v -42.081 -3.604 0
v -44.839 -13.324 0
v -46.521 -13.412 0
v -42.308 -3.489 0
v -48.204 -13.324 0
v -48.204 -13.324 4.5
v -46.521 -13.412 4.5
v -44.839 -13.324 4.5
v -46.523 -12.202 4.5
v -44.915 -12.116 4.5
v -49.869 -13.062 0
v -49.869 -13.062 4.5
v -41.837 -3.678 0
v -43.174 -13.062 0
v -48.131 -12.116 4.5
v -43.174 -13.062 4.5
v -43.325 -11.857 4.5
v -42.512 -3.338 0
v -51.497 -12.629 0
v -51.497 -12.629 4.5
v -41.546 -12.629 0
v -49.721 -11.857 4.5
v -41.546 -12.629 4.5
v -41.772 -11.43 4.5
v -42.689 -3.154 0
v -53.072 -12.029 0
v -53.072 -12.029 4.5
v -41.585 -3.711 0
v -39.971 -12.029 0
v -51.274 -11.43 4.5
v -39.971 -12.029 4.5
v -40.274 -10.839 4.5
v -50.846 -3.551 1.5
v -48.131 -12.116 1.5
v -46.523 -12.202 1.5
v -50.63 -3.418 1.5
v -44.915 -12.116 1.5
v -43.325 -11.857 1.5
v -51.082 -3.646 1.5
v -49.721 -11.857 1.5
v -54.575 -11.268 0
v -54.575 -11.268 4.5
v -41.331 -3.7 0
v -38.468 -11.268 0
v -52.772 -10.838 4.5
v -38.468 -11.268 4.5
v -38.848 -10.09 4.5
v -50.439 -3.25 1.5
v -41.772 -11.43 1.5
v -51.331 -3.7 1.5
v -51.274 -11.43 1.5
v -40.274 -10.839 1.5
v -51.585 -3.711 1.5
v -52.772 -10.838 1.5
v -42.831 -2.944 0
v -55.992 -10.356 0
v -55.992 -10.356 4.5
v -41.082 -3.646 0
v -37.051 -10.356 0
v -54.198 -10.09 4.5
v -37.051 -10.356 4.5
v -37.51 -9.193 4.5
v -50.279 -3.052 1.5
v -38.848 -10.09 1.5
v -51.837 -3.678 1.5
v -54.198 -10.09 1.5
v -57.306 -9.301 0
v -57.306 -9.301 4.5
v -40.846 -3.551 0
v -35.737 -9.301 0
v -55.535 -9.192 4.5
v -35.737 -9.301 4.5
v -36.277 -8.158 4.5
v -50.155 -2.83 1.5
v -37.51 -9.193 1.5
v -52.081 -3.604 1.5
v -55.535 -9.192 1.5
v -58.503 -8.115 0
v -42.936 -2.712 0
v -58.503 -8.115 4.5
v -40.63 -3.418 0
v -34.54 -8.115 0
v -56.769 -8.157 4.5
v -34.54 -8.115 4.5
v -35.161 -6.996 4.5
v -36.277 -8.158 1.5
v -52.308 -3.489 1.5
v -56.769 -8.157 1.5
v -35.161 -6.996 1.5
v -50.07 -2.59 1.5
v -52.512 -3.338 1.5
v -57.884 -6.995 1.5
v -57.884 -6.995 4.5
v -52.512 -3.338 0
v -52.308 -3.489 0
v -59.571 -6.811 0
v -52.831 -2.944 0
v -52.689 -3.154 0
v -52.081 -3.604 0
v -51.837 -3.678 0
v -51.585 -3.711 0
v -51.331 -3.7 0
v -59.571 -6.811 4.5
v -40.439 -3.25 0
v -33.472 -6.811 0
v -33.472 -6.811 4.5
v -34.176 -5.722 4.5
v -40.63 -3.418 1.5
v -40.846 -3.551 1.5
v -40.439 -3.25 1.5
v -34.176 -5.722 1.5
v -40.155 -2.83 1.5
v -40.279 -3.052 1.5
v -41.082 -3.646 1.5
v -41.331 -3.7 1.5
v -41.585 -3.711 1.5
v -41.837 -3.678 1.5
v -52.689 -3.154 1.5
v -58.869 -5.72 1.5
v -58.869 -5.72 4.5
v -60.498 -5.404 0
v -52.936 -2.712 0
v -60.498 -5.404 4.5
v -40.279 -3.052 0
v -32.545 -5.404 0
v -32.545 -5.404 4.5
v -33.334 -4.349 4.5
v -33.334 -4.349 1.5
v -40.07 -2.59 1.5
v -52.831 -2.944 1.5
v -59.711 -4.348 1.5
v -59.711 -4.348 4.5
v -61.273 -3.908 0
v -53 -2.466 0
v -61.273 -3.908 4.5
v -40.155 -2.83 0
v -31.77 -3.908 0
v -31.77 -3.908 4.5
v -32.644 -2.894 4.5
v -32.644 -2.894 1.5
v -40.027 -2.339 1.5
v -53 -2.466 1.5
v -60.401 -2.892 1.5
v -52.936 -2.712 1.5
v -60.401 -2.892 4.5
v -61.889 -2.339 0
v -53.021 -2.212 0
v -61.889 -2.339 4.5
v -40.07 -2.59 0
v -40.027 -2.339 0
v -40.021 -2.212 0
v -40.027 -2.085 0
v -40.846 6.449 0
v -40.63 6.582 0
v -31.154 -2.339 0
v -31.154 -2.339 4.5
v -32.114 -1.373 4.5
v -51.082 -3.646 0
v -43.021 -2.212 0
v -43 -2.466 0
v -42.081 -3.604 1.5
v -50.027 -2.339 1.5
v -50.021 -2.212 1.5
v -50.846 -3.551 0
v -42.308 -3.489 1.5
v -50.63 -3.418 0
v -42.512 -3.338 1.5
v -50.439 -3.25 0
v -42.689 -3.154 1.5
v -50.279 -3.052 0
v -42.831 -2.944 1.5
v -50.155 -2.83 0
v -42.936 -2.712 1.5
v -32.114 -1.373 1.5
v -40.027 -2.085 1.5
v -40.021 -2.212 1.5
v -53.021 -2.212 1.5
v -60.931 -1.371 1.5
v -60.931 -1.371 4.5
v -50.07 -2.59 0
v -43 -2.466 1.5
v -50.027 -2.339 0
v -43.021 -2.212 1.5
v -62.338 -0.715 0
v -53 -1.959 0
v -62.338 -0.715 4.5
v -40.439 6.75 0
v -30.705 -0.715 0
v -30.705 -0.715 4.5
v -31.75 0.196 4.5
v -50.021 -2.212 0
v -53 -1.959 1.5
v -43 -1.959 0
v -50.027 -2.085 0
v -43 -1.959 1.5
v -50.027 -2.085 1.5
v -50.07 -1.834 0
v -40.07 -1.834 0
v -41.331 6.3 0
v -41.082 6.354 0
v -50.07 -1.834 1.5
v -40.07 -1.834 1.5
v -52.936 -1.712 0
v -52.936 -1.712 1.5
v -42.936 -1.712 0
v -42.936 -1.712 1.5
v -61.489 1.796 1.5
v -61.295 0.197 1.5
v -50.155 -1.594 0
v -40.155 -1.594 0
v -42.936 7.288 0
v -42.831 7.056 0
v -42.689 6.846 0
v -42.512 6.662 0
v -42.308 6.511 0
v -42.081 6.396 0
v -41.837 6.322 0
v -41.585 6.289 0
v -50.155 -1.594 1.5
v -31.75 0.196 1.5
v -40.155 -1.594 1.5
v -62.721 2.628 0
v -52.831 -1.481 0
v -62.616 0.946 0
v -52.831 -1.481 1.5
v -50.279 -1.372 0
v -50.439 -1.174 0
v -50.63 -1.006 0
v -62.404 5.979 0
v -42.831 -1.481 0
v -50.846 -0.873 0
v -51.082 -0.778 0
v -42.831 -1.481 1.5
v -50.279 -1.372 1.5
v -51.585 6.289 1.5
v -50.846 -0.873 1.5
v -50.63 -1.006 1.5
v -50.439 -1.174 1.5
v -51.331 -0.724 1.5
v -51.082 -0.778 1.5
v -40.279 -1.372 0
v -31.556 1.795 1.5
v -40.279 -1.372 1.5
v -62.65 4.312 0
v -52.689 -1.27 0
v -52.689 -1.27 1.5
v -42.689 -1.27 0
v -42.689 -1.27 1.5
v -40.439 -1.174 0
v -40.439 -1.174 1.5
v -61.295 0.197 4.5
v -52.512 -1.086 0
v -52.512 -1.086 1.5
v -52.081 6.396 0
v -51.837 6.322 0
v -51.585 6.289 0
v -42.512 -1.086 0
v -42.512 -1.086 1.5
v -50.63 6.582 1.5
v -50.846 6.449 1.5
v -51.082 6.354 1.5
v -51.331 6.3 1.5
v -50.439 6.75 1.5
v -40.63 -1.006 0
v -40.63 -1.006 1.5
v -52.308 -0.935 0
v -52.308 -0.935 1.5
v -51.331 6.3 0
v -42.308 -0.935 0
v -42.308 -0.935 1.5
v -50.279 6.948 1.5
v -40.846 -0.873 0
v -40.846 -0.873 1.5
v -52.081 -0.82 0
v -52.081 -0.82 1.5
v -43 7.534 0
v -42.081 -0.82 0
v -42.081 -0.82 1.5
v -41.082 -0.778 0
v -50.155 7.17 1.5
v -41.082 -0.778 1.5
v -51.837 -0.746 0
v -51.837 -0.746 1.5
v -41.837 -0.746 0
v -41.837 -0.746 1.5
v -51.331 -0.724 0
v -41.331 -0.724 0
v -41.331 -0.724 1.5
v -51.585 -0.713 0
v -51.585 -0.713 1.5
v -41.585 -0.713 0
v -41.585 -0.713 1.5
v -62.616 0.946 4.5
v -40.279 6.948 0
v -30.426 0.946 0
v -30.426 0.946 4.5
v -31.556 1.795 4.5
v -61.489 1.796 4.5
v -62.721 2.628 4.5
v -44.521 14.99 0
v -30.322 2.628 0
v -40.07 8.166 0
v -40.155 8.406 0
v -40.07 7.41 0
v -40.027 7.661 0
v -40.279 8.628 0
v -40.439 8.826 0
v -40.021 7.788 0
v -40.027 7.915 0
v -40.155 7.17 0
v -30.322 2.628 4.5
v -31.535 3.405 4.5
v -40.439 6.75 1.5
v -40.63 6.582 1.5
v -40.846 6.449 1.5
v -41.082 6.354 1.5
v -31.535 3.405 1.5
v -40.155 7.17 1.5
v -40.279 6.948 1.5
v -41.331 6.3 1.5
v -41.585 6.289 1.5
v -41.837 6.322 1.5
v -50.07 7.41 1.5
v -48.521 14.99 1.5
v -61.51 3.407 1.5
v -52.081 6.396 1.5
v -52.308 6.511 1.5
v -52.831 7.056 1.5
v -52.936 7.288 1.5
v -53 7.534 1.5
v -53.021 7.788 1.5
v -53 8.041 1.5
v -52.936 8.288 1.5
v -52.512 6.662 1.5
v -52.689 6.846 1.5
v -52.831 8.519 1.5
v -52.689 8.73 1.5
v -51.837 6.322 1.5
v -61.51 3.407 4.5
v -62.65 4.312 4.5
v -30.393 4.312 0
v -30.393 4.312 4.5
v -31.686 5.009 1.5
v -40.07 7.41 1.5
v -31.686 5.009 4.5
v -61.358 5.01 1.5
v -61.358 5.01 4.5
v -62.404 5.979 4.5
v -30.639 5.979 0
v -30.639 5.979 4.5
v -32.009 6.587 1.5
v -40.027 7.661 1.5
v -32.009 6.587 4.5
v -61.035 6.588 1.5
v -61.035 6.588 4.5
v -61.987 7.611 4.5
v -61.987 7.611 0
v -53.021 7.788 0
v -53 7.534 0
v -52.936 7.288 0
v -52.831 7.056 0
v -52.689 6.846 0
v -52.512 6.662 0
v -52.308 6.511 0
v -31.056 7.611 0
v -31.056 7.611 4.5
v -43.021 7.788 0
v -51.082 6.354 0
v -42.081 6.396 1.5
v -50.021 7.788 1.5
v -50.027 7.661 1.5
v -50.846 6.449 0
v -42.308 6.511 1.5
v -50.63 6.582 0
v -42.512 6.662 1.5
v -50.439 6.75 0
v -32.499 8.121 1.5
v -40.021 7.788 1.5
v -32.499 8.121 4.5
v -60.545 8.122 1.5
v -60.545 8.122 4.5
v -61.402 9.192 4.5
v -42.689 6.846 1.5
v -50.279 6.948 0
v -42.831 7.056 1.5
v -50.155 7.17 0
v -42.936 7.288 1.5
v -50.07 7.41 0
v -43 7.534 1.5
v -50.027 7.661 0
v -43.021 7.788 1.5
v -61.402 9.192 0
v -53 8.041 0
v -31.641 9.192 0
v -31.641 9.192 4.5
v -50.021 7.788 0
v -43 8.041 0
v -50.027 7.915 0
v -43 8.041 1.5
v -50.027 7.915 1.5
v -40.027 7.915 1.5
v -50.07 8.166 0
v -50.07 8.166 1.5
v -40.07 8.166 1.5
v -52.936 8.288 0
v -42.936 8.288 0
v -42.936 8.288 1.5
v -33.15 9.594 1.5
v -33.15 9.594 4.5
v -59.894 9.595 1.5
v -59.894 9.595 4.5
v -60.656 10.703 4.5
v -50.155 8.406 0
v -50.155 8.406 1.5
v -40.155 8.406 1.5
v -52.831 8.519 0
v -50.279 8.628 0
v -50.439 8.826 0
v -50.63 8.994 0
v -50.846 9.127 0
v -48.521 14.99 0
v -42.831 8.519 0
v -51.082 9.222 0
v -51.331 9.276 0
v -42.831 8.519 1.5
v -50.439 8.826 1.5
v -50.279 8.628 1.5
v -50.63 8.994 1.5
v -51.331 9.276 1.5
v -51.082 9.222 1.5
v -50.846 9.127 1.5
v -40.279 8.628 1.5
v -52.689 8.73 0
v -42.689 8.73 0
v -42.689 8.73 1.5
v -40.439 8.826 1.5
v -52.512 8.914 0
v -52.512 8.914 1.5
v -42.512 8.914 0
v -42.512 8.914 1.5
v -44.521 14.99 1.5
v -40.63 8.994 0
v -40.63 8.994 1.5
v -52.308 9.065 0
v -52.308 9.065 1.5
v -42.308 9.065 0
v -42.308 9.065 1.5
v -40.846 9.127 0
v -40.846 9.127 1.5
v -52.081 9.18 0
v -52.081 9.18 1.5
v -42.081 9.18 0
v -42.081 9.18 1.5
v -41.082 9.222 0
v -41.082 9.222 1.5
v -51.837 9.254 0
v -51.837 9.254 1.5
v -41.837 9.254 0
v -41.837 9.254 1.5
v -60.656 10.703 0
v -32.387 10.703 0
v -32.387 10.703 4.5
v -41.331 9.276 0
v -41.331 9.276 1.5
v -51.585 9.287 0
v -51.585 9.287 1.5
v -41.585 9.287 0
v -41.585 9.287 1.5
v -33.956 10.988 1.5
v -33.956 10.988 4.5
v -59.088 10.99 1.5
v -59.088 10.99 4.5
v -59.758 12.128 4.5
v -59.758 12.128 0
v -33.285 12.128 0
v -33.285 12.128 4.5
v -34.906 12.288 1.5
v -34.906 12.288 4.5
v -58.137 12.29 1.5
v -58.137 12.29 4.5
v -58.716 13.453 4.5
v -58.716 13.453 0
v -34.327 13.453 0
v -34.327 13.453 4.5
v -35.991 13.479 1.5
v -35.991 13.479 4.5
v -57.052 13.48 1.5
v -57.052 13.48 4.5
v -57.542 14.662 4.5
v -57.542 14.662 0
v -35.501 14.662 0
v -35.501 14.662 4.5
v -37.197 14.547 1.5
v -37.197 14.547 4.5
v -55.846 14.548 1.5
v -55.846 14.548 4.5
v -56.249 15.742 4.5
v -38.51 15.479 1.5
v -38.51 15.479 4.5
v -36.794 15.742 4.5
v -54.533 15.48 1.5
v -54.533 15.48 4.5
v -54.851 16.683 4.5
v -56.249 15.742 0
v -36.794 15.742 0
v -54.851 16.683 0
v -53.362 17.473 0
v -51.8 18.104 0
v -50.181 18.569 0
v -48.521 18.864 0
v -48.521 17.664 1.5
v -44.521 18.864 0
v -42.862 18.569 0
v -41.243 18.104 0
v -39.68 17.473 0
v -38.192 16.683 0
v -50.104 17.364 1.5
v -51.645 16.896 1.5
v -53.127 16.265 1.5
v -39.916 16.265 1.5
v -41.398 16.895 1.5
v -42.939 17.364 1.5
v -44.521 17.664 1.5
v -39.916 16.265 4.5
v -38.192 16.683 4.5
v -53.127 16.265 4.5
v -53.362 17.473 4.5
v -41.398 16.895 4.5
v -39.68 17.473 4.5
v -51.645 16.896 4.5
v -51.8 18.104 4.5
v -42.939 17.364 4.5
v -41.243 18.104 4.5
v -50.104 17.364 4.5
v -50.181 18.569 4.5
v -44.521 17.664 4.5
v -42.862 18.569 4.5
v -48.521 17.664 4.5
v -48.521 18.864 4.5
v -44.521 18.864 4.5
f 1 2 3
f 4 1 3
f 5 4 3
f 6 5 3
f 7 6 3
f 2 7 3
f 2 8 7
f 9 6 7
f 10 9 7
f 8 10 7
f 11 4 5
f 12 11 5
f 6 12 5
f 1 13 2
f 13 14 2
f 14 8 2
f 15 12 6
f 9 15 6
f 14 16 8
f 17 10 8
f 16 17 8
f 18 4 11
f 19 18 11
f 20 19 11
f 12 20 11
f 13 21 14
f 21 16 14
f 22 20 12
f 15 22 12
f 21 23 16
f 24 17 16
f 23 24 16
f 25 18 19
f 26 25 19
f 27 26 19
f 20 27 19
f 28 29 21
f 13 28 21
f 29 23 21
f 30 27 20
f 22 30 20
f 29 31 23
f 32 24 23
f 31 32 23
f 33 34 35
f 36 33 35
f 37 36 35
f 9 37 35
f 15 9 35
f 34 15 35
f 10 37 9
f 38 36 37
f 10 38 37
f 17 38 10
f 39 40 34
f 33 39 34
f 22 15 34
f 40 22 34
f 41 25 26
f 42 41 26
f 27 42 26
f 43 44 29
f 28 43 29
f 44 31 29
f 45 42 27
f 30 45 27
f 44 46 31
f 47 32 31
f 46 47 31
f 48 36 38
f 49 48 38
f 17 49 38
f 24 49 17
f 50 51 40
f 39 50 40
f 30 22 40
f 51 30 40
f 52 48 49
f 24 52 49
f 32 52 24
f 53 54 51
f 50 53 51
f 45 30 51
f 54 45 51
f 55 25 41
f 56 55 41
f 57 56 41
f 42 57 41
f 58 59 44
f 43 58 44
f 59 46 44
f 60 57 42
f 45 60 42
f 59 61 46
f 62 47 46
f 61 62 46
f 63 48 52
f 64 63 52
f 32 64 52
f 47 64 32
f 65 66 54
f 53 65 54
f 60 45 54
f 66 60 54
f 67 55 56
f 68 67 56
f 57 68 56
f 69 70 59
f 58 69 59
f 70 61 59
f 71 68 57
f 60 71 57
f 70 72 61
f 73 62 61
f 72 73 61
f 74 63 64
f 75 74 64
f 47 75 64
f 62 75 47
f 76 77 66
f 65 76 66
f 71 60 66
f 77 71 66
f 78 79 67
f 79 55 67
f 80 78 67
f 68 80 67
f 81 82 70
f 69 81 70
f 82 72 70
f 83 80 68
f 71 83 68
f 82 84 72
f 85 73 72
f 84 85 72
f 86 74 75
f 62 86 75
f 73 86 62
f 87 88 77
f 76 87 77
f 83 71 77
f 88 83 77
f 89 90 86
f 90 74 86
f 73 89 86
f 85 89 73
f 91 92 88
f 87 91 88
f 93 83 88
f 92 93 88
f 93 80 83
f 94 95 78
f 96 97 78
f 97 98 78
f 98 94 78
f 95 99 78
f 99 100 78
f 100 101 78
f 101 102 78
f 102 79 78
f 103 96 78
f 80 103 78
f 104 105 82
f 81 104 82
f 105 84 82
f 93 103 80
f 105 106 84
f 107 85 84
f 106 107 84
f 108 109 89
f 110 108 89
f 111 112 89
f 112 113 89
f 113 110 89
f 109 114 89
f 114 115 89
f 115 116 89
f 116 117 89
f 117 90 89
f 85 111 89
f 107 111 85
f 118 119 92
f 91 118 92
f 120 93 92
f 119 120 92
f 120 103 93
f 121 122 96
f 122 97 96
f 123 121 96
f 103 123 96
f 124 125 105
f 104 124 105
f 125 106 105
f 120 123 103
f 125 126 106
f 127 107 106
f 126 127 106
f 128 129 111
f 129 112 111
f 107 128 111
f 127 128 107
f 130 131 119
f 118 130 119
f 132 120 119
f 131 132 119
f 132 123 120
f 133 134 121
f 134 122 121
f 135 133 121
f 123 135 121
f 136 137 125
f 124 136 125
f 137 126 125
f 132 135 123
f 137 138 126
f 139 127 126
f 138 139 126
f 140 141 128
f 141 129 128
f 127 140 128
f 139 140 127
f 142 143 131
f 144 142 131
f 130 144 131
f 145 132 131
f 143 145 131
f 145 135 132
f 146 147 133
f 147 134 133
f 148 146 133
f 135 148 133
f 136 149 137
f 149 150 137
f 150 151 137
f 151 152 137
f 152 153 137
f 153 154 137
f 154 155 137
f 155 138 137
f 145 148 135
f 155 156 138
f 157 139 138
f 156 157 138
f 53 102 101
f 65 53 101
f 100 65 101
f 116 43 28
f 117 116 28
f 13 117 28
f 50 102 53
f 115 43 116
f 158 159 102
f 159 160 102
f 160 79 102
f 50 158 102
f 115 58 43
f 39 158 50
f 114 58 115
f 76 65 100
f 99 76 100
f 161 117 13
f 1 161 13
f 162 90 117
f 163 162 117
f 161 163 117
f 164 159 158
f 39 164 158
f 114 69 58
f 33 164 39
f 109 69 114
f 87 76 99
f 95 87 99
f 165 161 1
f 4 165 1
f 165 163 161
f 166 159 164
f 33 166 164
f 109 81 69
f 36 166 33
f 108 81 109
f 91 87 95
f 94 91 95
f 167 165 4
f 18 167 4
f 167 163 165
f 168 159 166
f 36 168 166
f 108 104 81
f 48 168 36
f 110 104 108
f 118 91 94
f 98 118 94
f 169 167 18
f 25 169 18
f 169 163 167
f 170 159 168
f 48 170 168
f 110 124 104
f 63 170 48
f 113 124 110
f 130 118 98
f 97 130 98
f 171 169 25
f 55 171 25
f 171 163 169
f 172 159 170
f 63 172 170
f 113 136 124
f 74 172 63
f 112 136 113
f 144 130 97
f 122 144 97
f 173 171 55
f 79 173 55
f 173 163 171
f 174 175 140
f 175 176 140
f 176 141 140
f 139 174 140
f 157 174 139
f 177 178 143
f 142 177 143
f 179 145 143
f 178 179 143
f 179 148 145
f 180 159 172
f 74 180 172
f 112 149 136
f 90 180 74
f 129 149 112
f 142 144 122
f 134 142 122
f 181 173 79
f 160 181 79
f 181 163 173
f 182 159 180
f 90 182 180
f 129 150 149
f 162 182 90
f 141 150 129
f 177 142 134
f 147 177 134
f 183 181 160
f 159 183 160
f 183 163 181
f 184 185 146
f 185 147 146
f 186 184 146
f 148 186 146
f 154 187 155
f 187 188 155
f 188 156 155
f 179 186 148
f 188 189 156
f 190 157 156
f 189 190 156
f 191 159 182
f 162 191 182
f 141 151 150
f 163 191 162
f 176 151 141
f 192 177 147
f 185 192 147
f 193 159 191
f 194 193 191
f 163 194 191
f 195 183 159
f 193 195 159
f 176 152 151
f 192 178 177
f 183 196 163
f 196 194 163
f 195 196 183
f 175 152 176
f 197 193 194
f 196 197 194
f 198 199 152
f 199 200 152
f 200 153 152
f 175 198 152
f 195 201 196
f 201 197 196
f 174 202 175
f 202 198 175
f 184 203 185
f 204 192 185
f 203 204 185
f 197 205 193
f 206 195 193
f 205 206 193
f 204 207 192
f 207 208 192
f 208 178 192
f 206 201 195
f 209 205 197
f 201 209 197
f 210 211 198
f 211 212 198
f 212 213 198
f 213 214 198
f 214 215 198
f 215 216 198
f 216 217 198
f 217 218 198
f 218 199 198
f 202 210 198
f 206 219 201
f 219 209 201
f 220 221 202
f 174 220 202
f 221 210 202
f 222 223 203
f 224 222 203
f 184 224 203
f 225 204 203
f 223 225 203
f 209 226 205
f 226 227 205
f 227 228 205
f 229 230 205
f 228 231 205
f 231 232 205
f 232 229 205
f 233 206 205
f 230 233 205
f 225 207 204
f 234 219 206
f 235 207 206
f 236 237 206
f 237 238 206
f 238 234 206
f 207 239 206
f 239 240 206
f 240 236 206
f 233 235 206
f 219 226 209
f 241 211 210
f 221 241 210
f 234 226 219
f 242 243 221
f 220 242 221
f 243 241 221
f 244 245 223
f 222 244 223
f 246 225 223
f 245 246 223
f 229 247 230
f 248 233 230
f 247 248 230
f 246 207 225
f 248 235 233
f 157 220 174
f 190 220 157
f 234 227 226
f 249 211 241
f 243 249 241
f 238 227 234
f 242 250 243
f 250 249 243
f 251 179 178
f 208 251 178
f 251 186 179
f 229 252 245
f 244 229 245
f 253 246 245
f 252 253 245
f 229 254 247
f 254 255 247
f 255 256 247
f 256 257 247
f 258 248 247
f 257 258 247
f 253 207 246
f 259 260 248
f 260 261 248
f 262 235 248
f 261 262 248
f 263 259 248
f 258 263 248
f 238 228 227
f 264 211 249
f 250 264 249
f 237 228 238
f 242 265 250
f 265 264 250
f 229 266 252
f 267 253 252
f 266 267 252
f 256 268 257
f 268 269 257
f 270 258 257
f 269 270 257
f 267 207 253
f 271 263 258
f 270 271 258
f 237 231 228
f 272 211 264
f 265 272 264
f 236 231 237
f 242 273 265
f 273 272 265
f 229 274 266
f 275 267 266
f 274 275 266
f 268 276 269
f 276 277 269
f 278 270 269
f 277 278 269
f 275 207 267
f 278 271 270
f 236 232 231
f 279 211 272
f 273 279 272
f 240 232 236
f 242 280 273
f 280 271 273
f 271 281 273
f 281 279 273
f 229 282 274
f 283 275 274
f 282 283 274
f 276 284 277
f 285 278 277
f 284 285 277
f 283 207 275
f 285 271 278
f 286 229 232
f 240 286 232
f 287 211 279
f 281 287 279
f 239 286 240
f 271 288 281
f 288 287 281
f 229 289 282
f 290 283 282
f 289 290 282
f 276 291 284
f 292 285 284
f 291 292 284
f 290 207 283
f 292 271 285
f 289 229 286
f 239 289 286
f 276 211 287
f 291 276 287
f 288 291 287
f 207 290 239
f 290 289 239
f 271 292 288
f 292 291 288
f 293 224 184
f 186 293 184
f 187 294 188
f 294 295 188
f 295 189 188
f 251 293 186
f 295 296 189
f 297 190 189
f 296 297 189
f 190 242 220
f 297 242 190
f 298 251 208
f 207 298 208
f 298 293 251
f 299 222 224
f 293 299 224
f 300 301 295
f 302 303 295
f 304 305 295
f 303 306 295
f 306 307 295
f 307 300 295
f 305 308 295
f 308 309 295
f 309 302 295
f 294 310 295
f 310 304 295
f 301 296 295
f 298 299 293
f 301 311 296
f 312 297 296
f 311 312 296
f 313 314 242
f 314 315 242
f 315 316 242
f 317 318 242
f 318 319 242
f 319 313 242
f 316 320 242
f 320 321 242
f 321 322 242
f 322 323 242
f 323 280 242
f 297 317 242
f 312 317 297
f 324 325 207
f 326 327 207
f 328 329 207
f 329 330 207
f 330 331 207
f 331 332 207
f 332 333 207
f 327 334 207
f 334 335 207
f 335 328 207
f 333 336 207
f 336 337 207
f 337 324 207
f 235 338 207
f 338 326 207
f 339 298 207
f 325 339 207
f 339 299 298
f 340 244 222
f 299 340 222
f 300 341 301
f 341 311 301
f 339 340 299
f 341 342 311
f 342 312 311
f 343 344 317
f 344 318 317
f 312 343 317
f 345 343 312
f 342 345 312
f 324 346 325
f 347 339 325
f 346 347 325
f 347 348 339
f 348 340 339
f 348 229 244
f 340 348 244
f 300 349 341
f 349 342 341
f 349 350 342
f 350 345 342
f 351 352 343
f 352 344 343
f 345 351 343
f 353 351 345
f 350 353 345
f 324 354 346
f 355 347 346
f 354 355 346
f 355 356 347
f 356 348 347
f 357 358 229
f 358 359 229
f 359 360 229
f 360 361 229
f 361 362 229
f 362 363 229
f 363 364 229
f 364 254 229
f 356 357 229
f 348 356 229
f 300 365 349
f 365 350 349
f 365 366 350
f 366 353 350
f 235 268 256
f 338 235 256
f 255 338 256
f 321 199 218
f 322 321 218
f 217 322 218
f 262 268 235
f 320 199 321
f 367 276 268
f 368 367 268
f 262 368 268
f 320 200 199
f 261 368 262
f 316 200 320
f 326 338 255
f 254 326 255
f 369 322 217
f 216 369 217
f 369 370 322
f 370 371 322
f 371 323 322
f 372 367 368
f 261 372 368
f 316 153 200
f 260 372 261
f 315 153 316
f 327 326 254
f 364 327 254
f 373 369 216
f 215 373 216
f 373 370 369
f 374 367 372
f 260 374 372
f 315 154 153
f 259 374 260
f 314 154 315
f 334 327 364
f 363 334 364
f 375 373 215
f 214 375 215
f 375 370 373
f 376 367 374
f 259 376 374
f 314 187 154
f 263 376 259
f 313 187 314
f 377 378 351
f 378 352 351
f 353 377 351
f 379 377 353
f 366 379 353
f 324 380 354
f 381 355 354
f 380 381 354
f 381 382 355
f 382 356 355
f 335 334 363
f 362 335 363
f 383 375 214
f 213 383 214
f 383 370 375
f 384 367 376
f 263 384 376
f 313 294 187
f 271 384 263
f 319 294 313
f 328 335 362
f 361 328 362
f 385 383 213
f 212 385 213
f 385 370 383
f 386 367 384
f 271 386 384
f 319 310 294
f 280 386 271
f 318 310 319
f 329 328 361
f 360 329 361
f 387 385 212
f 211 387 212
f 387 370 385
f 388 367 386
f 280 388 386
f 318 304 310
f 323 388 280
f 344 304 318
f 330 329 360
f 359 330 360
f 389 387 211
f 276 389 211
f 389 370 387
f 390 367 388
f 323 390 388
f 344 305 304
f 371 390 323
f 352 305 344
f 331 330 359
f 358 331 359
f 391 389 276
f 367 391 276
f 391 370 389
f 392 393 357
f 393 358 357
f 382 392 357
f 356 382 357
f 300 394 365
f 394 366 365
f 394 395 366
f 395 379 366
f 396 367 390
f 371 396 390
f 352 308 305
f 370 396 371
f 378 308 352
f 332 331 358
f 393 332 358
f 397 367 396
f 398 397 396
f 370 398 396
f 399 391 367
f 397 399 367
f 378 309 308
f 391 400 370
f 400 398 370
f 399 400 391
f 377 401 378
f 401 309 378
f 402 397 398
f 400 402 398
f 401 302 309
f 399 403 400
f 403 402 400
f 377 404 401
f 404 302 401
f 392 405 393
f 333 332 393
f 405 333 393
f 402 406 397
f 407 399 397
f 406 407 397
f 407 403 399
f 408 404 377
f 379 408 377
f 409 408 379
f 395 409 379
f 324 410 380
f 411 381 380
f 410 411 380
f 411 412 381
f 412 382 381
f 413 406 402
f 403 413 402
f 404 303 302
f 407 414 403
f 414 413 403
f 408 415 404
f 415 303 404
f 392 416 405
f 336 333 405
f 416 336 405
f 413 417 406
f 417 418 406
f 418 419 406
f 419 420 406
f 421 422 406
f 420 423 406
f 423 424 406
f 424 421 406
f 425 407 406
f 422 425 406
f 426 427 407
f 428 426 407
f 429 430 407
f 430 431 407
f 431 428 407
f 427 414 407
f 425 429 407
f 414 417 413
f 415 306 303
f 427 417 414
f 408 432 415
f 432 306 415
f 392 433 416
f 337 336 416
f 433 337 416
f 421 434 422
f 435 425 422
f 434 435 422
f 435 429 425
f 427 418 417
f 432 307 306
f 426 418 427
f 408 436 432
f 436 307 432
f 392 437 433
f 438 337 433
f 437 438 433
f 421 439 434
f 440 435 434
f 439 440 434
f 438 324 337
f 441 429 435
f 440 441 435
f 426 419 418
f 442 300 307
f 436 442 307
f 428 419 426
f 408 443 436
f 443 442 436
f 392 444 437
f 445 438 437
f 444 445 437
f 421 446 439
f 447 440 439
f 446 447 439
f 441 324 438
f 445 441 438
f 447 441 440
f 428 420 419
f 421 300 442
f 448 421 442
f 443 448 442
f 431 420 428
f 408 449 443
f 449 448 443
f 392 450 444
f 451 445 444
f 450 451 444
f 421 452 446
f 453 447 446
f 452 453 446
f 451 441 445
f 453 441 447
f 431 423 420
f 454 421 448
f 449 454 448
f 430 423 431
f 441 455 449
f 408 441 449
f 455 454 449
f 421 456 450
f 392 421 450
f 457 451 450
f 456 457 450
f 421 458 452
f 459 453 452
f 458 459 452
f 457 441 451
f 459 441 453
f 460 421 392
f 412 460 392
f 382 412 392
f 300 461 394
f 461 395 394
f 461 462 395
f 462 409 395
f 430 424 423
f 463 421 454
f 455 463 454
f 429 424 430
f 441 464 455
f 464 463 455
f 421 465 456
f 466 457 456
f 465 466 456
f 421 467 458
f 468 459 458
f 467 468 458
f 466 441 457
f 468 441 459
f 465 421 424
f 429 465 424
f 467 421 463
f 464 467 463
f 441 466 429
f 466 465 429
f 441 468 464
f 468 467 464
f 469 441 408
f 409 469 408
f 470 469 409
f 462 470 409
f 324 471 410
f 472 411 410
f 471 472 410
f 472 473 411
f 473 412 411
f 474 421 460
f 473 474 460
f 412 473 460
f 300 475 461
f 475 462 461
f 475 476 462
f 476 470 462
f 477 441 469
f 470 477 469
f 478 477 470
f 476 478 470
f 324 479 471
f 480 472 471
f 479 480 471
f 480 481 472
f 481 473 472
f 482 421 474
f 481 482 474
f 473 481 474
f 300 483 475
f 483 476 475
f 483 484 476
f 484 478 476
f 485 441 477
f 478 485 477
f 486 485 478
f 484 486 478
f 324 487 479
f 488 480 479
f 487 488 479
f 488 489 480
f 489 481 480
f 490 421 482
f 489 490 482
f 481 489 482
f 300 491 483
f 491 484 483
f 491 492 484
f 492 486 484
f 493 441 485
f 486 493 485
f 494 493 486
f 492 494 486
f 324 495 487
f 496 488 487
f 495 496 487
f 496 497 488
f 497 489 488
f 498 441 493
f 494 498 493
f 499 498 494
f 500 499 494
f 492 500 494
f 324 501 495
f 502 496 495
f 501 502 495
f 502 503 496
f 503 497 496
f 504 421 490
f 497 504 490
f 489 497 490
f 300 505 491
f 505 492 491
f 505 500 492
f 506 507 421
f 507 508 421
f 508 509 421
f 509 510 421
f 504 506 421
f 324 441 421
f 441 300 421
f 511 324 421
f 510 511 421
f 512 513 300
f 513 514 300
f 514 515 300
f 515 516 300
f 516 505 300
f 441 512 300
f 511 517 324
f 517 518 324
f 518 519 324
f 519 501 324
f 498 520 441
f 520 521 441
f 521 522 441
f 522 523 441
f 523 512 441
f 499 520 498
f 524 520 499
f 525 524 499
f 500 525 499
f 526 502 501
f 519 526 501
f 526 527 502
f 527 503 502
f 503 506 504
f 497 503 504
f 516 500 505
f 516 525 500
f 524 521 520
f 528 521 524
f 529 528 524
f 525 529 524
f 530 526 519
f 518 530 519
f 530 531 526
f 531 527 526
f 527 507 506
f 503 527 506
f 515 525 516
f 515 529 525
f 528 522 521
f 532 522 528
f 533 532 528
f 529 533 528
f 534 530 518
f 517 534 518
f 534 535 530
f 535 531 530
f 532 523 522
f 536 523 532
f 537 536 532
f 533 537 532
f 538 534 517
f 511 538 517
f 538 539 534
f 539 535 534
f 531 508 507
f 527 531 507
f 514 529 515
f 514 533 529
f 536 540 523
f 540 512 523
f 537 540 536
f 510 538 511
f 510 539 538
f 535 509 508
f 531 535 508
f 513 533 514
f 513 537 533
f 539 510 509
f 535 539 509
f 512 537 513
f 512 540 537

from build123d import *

# Parameters (mm, degrees)
CROQUIS1_R              = 1.5
SALIENTE_EXTRUIR1_DEPTH = 1.5
SALIENTE_EXTRUIR2_DEPTH = 3


with BuildPart() as part:
    # Croquis1 → Saliente-Extruir1 (new body)
    with BuildSketch(Plane.XY):
        with BuildLine():
            Line((-48.521455966, 14.990333384), (-48.521455966, 18.864023727))
            ThreePointArc((-48.521455966, 18.864023727), (-46.521455966, -13.412045444), (-44.521455966, 18.864023727))
            Line((-44.521455966, 18.864023727), (-44.521455966, 14.990333384))
            Line((-44.521455966, 14.990333384), (-48.521455966, 14.990333384))
        make_face()
        with Locations((-41.521455966, -2.212045444)):
            Circle(CROQUIS1_R, mode=Mode.SUBTRACT)
        with Locations((-51.521455966, -2.212045444)):
            Circle(CROQUIS1_R, mode=Mode.SUBTRACT)
        with Locations((-51.521455966, 7.787954556)):
            Circle(CROQUIS1_R, mode=Mode.SUBTRACT)
        with Locations((-41.521455966, 7.787954556)):
            Circle(CROQUIS1_R, mode=Mode.SUBTRACT)
    extrude(amount=SALIENTE_EXTRUIR1_DEPTH)

    # Croquis2 → Saliente-Extruir2 (add)
    with BuildSketch(Plane.XY.offset(1.5)):
        with BuildLine():
            Line((-48.521455966, 18.864023727), (-48.521455966, 17.664023727))
            ThreePointArc((-48.521455966, 17.664023727), (-46.523016697, -12.202149494), (-44.521455966, 17.663814696))
            Line((-44.521455966, 17.663814696), (-44.521455966, 18.864023727))
            ThreePointArc((-44.521455966, 18.864023727), (-46.521455966, -13.412045444), (-48.521455966, 18.864023727))
        make_face()
    extrude(amount=SALIENTE_EXTRUIR2_DEPTH)


solid = part.part
